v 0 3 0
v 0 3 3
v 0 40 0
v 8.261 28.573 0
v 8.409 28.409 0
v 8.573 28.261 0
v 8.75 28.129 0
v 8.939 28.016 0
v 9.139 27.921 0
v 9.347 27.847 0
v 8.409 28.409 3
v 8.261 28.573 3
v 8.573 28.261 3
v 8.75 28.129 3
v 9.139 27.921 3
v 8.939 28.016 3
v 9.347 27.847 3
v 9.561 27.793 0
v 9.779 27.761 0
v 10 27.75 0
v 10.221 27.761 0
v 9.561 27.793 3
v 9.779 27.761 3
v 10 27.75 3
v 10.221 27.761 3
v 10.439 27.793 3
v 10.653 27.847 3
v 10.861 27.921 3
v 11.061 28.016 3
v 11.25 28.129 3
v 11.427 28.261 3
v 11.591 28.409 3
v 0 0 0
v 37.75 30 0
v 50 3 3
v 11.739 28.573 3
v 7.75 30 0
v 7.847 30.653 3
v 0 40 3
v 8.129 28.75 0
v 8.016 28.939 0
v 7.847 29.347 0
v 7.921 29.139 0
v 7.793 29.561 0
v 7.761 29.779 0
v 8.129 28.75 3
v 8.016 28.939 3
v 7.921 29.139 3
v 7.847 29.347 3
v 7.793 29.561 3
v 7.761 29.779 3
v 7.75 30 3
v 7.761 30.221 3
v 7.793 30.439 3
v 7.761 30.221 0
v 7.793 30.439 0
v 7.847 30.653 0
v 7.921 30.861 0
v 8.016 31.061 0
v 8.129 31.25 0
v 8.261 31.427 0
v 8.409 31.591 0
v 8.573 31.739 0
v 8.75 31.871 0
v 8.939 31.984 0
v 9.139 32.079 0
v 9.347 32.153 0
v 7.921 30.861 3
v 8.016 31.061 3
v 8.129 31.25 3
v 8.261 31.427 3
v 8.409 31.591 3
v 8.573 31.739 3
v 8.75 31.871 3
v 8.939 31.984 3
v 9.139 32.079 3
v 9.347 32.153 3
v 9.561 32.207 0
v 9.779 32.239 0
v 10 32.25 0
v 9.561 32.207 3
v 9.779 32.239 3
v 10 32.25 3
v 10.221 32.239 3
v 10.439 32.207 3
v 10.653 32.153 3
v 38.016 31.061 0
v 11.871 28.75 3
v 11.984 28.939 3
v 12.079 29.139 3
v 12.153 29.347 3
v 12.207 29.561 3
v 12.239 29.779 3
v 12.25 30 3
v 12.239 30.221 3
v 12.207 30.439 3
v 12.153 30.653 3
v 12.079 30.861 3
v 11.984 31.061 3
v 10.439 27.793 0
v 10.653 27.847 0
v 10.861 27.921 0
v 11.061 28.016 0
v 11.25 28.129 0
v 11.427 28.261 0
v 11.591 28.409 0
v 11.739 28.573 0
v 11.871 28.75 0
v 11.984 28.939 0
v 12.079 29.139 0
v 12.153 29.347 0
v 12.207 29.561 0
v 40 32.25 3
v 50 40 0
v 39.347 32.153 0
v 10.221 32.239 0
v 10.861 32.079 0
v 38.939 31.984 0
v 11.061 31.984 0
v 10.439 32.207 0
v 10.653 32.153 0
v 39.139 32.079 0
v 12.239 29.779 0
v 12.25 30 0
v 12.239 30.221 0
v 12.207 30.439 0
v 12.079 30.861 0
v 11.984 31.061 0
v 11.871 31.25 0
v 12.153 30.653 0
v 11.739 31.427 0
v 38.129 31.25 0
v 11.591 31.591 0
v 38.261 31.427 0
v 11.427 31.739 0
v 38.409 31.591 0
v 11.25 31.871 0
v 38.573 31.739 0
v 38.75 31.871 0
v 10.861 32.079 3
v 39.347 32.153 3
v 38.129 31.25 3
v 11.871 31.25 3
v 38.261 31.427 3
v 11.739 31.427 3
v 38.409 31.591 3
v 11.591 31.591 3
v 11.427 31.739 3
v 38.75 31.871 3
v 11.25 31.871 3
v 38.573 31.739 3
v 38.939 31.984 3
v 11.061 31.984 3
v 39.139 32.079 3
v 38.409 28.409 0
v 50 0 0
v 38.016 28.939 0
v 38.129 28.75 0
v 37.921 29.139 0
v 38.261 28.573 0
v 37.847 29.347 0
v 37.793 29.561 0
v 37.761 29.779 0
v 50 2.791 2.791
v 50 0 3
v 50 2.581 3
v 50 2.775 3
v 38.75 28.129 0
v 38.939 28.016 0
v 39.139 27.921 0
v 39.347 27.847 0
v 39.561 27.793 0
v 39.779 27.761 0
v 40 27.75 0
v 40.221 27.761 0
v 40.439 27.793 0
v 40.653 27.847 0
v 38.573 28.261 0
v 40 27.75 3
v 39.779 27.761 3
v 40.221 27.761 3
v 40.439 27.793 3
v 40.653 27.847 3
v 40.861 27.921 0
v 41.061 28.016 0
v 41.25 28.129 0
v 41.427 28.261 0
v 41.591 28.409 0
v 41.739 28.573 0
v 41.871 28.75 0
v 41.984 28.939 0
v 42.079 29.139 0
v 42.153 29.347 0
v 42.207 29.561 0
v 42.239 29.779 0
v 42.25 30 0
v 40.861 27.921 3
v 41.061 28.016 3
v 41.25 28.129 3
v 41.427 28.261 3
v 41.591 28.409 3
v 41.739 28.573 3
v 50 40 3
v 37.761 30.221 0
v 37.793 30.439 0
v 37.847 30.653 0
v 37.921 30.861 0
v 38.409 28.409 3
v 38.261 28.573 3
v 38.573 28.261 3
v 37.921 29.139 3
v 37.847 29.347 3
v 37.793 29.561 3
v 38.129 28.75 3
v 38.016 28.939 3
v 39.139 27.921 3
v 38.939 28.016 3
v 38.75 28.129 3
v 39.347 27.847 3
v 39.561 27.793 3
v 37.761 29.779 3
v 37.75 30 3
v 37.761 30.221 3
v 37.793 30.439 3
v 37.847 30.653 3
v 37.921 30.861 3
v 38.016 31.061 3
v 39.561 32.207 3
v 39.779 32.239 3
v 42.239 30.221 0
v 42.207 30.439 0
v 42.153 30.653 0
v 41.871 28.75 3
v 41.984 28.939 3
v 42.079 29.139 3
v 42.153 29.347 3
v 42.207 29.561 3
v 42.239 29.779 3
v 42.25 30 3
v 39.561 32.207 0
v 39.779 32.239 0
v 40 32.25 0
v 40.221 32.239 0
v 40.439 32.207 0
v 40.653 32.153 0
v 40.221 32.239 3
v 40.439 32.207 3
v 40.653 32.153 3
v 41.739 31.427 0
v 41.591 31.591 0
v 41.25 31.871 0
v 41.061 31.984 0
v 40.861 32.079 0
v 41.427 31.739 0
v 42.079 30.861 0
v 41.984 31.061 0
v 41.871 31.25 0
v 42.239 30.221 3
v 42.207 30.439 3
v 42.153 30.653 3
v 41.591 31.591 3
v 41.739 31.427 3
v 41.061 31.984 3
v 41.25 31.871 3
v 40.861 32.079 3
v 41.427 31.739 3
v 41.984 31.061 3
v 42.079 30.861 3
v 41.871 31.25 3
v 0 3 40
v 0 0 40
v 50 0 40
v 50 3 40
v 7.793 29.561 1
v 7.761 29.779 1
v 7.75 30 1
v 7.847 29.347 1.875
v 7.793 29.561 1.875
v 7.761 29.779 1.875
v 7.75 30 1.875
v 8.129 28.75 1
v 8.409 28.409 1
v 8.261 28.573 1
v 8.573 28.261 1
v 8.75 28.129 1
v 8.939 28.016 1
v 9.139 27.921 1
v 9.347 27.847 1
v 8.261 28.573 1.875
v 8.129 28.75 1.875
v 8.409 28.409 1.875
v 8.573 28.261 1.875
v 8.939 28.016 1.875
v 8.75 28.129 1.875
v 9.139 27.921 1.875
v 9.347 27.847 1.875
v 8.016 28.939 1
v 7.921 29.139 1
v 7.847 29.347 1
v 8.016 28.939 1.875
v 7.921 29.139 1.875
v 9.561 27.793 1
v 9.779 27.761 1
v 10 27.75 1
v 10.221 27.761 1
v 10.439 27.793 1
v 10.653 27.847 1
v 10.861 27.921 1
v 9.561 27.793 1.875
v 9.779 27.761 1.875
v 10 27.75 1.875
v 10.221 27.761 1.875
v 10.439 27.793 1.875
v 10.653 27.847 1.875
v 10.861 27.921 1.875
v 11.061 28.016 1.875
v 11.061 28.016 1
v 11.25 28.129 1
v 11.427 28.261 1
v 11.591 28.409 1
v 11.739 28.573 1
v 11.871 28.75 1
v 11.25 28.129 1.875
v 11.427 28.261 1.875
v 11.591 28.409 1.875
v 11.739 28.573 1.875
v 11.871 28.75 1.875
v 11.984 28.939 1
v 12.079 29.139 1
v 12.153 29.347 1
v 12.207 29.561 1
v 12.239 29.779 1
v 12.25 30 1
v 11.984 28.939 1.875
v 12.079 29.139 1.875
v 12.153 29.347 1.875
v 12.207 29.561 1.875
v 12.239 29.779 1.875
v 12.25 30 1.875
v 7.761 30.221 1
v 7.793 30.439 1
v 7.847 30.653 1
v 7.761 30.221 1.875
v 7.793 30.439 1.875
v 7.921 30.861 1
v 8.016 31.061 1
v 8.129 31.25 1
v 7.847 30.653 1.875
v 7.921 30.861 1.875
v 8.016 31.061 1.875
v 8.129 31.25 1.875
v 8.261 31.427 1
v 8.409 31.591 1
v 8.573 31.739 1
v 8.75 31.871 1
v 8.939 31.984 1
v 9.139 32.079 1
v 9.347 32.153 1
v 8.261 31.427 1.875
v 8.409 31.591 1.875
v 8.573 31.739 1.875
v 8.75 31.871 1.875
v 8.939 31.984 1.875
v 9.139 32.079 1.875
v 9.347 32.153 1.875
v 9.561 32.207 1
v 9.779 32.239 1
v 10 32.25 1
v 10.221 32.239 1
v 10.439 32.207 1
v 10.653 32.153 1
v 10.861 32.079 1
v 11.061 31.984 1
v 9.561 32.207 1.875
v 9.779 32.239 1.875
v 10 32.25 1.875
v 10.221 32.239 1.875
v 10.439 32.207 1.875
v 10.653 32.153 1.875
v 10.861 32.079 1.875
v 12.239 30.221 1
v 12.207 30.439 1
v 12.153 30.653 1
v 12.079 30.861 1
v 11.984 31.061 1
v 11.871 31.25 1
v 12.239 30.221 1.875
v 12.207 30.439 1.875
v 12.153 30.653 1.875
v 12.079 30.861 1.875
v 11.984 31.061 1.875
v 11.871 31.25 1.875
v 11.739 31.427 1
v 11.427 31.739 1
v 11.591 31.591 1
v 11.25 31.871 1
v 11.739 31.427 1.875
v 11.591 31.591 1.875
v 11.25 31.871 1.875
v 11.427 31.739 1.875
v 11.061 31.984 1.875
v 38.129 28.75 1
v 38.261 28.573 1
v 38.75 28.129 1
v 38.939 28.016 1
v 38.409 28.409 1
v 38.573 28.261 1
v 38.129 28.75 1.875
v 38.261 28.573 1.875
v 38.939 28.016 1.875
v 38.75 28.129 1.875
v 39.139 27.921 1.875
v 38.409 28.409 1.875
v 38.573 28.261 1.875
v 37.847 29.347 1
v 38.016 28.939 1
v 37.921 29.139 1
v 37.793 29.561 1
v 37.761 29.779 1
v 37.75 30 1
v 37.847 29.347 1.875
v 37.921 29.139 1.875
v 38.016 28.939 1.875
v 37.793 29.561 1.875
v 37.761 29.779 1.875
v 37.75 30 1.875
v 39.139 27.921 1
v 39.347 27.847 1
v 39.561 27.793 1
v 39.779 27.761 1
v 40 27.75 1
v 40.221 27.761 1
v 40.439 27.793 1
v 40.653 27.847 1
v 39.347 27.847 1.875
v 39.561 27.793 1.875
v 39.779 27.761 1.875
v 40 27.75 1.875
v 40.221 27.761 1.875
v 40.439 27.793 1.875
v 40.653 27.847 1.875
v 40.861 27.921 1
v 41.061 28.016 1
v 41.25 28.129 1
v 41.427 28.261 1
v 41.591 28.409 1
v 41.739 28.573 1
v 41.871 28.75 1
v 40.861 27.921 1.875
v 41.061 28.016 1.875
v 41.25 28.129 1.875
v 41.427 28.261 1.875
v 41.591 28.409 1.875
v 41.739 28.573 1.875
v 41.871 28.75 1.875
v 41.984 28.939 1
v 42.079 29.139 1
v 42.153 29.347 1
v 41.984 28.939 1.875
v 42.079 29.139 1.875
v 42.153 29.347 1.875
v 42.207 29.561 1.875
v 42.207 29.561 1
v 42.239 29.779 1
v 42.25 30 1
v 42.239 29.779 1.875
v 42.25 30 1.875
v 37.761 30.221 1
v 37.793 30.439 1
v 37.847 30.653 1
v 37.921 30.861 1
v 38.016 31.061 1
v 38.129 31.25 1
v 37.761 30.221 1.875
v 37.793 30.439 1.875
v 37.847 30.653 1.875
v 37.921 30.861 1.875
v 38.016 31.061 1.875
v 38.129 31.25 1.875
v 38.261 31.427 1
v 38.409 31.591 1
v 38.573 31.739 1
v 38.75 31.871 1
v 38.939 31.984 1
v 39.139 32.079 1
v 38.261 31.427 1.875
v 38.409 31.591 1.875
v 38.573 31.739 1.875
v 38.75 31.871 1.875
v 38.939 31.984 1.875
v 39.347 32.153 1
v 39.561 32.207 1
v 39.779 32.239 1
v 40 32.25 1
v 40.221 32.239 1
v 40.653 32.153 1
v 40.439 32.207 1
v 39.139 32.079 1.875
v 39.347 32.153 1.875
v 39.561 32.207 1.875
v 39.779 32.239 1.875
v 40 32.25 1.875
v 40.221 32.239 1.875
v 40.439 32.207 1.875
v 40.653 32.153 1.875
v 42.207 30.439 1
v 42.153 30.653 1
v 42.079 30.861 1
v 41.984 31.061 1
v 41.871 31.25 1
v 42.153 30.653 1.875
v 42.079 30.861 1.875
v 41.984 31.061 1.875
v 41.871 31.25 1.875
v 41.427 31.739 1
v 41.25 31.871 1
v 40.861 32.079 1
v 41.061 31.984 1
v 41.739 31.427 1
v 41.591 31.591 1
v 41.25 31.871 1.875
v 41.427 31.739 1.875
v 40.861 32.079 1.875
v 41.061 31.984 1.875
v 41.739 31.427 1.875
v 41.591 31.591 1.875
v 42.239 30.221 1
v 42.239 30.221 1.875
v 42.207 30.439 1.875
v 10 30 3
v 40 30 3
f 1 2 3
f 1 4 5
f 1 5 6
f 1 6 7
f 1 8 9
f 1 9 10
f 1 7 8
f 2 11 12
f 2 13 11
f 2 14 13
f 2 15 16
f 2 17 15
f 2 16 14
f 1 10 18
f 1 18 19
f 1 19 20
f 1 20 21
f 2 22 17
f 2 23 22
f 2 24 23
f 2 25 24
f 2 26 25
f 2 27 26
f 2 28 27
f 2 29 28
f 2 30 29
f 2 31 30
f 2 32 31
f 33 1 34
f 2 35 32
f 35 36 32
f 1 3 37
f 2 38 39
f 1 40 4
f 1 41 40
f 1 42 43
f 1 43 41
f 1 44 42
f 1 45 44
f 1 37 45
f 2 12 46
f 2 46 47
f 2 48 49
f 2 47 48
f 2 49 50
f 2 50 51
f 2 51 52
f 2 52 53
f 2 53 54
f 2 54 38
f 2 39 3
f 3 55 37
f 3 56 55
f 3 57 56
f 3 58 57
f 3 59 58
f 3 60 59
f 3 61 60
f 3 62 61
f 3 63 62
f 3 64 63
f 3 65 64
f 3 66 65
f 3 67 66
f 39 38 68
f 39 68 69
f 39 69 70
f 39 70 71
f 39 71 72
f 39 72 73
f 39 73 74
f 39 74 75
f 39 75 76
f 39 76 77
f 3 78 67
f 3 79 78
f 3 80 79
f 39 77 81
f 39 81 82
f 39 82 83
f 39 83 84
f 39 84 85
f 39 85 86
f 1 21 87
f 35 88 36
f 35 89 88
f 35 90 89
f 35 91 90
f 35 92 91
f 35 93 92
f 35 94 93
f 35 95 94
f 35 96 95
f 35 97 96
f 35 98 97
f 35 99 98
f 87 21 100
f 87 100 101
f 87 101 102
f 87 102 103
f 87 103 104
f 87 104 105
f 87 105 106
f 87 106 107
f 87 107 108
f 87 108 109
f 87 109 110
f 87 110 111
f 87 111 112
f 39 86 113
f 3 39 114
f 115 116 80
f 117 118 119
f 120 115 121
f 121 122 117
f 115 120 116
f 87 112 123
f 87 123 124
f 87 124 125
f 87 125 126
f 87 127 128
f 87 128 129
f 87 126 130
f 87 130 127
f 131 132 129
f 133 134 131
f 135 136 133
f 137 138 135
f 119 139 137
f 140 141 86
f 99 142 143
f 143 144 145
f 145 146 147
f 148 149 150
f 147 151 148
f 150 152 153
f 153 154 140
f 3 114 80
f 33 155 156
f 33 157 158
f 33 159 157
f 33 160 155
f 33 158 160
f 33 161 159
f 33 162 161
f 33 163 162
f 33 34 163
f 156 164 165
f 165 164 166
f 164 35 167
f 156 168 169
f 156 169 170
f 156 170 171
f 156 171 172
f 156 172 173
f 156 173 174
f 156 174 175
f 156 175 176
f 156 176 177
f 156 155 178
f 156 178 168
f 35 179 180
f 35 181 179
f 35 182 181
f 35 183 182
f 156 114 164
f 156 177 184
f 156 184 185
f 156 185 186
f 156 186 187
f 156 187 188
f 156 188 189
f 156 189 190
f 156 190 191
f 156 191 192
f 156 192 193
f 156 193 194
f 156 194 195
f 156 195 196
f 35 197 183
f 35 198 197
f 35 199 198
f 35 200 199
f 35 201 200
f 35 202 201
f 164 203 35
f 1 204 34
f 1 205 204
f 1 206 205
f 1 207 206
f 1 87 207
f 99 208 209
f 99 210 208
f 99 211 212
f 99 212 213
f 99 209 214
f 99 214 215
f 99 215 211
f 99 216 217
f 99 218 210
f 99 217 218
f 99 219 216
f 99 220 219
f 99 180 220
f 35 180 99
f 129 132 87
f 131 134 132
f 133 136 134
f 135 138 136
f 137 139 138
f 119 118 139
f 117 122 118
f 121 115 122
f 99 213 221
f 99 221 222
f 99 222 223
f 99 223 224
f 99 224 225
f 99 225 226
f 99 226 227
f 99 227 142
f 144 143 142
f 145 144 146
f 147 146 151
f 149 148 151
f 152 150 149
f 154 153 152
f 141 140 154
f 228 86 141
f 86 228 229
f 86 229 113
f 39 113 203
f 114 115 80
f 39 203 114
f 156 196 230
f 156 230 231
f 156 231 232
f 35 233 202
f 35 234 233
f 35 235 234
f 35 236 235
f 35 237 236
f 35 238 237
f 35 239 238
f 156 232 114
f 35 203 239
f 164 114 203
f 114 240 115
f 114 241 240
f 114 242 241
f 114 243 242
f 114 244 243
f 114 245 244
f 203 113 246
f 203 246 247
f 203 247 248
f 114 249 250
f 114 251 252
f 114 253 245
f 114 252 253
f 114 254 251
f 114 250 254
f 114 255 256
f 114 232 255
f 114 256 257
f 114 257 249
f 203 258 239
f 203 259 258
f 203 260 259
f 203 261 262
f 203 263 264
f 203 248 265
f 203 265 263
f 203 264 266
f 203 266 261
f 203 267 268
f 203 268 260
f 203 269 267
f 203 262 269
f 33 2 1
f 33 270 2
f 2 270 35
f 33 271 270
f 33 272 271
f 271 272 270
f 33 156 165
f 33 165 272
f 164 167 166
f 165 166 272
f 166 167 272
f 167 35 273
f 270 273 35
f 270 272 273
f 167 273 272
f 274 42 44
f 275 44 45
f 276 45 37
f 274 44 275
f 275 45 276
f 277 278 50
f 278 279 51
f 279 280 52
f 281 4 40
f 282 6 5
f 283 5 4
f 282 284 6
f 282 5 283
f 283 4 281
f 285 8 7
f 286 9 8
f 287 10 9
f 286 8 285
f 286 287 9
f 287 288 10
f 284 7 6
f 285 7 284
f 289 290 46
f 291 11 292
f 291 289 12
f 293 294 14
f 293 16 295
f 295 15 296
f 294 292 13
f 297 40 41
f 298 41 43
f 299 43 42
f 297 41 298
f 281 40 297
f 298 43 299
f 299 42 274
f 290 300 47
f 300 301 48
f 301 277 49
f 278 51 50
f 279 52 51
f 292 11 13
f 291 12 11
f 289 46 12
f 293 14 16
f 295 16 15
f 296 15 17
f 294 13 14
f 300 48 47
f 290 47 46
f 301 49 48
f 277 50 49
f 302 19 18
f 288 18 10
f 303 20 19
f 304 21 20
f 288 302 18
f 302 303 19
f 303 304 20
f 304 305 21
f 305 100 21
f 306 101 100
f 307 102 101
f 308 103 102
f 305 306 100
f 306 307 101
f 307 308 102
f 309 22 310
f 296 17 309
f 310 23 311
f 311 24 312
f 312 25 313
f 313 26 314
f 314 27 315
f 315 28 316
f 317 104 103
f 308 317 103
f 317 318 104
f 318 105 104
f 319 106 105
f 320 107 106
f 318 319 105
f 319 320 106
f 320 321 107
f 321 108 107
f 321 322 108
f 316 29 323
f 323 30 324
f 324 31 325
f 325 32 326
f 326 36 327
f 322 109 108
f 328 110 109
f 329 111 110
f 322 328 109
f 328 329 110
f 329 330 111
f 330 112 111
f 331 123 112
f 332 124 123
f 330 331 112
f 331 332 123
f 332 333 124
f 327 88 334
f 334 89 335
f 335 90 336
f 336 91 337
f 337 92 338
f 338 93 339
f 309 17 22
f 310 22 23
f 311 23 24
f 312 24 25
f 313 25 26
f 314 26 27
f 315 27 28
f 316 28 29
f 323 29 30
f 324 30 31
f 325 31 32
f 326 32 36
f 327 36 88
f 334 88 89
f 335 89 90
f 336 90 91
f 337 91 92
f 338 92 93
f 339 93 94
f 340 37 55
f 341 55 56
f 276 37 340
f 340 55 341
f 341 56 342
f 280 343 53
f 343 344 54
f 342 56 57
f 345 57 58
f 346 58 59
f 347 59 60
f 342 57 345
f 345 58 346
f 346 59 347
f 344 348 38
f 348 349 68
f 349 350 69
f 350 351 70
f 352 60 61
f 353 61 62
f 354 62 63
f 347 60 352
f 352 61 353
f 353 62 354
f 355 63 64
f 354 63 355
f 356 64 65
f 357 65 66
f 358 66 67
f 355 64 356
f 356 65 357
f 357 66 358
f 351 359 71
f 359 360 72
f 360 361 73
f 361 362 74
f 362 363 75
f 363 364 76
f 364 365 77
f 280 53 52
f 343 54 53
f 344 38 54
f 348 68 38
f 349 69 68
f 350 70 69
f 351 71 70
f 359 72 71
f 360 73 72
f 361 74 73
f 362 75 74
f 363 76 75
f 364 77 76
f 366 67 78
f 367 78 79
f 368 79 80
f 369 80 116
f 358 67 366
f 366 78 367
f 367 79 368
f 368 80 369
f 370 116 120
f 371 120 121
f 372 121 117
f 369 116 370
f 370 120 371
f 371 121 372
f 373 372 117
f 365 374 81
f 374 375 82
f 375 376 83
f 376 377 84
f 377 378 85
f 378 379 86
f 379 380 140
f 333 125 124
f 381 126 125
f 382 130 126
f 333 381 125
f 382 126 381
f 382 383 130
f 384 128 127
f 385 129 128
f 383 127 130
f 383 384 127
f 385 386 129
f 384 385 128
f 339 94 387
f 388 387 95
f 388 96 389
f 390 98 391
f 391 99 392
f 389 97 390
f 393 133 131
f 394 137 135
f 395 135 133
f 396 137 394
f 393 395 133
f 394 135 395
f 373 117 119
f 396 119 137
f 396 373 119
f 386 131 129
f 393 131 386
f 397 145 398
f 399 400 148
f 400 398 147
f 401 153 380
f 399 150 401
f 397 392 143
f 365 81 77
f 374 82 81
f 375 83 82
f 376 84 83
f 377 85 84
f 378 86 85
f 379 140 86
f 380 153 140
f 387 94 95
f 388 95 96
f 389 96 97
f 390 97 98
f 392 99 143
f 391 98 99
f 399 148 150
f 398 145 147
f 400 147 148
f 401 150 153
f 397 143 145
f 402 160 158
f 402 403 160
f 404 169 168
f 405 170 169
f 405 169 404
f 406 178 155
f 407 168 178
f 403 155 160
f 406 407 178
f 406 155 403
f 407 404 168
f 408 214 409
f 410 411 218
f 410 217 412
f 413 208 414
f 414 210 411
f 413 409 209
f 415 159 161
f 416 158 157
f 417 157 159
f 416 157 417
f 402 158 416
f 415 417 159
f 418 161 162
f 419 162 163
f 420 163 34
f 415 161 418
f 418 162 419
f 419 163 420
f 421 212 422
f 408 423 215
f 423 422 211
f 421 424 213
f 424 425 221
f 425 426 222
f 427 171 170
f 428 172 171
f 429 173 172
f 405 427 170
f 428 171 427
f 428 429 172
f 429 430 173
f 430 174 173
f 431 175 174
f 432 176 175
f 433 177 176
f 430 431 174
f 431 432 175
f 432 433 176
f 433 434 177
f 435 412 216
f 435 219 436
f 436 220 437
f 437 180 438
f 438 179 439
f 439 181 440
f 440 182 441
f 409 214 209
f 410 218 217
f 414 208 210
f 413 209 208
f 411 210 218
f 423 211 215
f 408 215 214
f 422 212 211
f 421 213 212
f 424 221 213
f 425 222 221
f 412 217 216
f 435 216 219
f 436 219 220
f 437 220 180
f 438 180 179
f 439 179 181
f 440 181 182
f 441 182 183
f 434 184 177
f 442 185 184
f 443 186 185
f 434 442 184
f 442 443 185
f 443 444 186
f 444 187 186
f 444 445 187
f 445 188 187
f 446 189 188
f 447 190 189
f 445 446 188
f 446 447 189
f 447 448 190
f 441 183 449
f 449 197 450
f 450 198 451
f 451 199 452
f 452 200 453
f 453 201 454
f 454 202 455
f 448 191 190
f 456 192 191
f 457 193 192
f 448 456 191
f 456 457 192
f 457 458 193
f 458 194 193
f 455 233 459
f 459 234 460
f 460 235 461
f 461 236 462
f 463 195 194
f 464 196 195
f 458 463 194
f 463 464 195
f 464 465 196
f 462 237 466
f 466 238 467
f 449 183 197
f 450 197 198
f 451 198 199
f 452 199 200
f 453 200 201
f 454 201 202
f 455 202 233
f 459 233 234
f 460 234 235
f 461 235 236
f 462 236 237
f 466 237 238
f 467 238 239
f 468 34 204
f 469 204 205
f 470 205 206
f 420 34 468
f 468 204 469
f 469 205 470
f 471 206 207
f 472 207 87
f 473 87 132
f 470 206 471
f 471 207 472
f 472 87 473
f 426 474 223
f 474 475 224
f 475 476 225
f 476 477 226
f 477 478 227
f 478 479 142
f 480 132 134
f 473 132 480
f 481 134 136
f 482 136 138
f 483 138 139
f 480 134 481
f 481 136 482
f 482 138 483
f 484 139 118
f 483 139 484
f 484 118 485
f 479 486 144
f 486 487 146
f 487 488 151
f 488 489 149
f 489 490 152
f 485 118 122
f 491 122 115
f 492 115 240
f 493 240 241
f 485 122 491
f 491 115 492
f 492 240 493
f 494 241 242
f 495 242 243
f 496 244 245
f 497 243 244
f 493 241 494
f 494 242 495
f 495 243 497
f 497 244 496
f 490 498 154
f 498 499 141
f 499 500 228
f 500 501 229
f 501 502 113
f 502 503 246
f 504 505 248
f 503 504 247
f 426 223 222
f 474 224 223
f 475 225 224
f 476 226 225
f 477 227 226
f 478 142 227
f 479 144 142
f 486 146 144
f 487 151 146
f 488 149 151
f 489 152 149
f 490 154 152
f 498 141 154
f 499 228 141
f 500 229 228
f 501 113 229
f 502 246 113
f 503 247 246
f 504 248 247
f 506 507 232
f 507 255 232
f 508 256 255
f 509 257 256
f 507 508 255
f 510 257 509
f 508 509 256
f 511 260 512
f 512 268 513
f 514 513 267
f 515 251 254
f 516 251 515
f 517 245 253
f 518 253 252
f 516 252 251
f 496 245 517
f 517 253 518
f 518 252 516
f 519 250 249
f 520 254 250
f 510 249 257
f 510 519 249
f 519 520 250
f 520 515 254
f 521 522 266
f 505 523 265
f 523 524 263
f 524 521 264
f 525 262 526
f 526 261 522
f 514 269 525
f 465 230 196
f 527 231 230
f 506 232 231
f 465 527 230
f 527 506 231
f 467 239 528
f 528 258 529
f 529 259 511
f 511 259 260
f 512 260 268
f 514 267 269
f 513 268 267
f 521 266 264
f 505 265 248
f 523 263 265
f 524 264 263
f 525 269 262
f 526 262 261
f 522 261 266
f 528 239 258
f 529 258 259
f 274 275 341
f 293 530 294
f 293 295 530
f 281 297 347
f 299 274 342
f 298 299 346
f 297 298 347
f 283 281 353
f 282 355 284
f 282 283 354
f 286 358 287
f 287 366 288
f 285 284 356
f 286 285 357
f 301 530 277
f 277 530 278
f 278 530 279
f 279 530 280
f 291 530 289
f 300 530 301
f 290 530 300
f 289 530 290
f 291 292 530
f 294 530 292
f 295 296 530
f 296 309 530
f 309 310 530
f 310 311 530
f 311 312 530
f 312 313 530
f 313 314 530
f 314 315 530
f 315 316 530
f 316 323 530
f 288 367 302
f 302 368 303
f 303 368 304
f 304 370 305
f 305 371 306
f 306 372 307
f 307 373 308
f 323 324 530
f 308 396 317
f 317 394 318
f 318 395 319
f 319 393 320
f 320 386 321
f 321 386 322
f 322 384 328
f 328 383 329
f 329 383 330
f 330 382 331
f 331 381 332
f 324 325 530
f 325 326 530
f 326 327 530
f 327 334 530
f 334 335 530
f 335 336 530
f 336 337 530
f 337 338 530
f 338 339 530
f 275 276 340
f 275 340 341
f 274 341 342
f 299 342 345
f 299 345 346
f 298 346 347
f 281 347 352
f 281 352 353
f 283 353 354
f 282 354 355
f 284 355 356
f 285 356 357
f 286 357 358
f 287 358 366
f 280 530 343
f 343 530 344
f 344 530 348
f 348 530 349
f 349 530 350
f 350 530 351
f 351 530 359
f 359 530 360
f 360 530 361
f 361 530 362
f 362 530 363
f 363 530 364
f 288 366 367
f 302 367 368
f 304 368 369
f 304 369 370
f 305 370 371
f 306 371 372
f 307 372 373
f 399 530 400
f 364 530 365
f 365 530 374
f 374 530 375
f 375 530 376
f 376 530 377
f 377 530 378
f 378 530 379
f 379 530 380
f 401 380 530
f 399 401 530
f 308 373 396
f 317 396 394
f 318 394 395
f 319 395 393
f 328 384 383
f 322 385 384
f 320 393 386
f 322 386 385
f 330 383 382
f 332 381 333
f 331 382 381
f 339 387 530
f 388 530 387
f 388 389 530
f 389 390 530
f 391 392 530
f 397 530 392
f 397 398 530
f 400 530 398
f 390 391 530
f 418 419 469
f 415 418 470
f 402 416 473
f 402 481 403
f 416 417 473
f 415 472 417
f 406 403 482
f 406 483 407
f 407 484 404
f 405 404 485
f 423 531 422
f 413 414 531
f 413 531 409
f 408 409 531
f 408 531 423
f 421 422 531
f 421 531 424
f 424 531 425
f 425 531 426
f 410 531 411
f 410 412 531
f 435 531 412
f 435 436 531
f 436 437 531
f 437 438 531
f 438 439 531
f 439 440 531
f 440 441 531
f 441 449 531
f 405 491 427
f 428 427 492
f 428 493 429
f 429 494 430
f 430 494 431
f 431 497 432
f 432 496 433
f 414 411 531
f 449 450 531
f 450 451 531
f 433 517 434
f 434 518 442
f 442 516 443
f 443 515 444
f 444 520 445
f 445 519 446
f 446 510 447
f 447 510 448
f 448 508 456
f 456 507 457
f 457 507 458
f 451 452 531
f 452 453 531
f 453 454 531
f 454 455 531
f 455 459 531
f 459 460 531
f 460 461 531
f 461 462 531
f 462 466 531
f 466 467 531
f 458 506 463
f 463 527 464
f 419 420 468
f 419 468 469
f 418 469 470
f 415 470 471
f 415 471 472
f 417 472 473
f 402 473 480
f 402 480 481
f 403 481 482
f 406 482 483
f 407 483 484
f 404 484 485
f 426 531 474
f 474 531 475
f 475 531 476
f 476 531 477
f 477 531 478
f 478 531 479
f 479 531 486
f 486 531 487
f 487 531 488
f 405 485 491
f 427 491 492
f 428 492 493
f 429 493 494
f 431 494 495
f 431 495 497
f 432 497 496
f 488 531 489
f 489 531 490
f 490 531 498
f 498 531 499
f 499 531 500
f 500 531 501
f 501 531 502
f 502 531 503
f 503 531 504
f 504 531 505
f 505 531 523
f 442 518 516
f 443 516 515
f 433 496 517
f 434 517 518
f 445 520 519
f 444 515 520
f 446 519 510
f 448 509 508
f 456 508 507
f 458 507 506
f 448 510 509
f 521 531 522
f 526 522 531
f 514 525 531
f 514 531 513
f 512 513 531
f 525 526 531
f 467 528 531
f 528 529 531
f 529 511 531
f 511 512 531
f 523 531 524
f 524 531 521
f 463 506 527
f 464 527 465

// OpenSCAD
// L-bracket with countersunk holes
// Inner corner at origin. Horizontal flange: +Y, thickness along +Z.
// Vertical flange: +Z, thickness along +Y.

$fn = 64;

// Parameters
width = 50;      // X dimension for both flanges
depth = 40;      // Y for horizontal flange
height = 40;     // Z for vertical flange
thickness = 3;   // plate thickness

// Countersink / hole parameters (M4)
clearance_dia = 4.5;
countersink_dia = 8;
countersink_depth = 2;

// Hole positions: 10 mm from left/right edges (X = 10 and X = width-10)
// and 10 mm from outer edge of each flange inward:
// - horizontal flange outer edge at Y = depth -> holes at Y = depth - 10
// - vertical flange outer edge at Z = height -> holes at Z = height - 10
hole_x = [10, width - 10];
hole_y_horizontal = depth - 10;
hole_z_vertical = height - 10;

// Build bracket (union of two plates)
module l_bracket() {
    // horizontal plate: spans X:0..width, Y:0..depth, Z:0..thickness
    cube([width, depth, thickness], center=false);
    // vertical plate: spans X:0..width, Y:0..thickness, Z:0..height
    translate([0,0,0])
        cube([width, thickness, height], center=false);
}

// Countersunk through hole along Z (for horizontal flange)
// countersink faces outward (+Z)
module countersunk_hole_Z(dia_clear, dia_cs, cs_depth) {
    // through hole (make sure long enough to cut through both potential overlaps)
    difference() {
        // through hole
        translate([0,0,-10])
            cylinder(h=thickness+height+20, r=dia_clear/2, center=false);
        // countersink cone located at outer side (+Z)
        // create cone that starts at Z = thickness (outer surface) and goes down by cs_depth
        translate([0,0,thickness - cs_depth])
            cylinder(h=cs_depth, r1=dia_cs/2, r2=0, center=false);
    }
}

// Countersunk through hole along Y (for vertical flange)
// countersink faces outward (+Y)
module countersunk_hole_Y(dia_clear, dia_cs, cs_depth) {
    difference() {
        // through hole along Y
        translate([0,-10,0])
            rotate([0,90,0])
                cylinder(h=thickness+depth+20, r=dia_clear/2, center=false);
        // countersink cone located at outer side (+Y)
        // create cone that starts at Y = thickness (outer surface) and goes inward by cs_depth
        translate([0, thickness - cs_depth, 0])
            rotate([0,90,0])
                cylinder(h=cs_depth, r1=dia_cs/2, r2=0, center=false);
    }
}

// Assemble final part with holes subtracted
difference() {
    l_bracket();

    // Horizontal flange holes (along Z)
    for (x = hole_x) {
        translate([x, hole_y_horizontal, 0])
            countersunk_hole_Z(clearance_dia, countersink_dia, countersink_depth);
    }

    // Vertical flange holes (along Y)
    for (x = hole_x) {
        translate([x, 0, hole_z_vertical])
            countersunk_hole_Y(clearance_dia, countersink_dia, countersink_depth);
    }
}
